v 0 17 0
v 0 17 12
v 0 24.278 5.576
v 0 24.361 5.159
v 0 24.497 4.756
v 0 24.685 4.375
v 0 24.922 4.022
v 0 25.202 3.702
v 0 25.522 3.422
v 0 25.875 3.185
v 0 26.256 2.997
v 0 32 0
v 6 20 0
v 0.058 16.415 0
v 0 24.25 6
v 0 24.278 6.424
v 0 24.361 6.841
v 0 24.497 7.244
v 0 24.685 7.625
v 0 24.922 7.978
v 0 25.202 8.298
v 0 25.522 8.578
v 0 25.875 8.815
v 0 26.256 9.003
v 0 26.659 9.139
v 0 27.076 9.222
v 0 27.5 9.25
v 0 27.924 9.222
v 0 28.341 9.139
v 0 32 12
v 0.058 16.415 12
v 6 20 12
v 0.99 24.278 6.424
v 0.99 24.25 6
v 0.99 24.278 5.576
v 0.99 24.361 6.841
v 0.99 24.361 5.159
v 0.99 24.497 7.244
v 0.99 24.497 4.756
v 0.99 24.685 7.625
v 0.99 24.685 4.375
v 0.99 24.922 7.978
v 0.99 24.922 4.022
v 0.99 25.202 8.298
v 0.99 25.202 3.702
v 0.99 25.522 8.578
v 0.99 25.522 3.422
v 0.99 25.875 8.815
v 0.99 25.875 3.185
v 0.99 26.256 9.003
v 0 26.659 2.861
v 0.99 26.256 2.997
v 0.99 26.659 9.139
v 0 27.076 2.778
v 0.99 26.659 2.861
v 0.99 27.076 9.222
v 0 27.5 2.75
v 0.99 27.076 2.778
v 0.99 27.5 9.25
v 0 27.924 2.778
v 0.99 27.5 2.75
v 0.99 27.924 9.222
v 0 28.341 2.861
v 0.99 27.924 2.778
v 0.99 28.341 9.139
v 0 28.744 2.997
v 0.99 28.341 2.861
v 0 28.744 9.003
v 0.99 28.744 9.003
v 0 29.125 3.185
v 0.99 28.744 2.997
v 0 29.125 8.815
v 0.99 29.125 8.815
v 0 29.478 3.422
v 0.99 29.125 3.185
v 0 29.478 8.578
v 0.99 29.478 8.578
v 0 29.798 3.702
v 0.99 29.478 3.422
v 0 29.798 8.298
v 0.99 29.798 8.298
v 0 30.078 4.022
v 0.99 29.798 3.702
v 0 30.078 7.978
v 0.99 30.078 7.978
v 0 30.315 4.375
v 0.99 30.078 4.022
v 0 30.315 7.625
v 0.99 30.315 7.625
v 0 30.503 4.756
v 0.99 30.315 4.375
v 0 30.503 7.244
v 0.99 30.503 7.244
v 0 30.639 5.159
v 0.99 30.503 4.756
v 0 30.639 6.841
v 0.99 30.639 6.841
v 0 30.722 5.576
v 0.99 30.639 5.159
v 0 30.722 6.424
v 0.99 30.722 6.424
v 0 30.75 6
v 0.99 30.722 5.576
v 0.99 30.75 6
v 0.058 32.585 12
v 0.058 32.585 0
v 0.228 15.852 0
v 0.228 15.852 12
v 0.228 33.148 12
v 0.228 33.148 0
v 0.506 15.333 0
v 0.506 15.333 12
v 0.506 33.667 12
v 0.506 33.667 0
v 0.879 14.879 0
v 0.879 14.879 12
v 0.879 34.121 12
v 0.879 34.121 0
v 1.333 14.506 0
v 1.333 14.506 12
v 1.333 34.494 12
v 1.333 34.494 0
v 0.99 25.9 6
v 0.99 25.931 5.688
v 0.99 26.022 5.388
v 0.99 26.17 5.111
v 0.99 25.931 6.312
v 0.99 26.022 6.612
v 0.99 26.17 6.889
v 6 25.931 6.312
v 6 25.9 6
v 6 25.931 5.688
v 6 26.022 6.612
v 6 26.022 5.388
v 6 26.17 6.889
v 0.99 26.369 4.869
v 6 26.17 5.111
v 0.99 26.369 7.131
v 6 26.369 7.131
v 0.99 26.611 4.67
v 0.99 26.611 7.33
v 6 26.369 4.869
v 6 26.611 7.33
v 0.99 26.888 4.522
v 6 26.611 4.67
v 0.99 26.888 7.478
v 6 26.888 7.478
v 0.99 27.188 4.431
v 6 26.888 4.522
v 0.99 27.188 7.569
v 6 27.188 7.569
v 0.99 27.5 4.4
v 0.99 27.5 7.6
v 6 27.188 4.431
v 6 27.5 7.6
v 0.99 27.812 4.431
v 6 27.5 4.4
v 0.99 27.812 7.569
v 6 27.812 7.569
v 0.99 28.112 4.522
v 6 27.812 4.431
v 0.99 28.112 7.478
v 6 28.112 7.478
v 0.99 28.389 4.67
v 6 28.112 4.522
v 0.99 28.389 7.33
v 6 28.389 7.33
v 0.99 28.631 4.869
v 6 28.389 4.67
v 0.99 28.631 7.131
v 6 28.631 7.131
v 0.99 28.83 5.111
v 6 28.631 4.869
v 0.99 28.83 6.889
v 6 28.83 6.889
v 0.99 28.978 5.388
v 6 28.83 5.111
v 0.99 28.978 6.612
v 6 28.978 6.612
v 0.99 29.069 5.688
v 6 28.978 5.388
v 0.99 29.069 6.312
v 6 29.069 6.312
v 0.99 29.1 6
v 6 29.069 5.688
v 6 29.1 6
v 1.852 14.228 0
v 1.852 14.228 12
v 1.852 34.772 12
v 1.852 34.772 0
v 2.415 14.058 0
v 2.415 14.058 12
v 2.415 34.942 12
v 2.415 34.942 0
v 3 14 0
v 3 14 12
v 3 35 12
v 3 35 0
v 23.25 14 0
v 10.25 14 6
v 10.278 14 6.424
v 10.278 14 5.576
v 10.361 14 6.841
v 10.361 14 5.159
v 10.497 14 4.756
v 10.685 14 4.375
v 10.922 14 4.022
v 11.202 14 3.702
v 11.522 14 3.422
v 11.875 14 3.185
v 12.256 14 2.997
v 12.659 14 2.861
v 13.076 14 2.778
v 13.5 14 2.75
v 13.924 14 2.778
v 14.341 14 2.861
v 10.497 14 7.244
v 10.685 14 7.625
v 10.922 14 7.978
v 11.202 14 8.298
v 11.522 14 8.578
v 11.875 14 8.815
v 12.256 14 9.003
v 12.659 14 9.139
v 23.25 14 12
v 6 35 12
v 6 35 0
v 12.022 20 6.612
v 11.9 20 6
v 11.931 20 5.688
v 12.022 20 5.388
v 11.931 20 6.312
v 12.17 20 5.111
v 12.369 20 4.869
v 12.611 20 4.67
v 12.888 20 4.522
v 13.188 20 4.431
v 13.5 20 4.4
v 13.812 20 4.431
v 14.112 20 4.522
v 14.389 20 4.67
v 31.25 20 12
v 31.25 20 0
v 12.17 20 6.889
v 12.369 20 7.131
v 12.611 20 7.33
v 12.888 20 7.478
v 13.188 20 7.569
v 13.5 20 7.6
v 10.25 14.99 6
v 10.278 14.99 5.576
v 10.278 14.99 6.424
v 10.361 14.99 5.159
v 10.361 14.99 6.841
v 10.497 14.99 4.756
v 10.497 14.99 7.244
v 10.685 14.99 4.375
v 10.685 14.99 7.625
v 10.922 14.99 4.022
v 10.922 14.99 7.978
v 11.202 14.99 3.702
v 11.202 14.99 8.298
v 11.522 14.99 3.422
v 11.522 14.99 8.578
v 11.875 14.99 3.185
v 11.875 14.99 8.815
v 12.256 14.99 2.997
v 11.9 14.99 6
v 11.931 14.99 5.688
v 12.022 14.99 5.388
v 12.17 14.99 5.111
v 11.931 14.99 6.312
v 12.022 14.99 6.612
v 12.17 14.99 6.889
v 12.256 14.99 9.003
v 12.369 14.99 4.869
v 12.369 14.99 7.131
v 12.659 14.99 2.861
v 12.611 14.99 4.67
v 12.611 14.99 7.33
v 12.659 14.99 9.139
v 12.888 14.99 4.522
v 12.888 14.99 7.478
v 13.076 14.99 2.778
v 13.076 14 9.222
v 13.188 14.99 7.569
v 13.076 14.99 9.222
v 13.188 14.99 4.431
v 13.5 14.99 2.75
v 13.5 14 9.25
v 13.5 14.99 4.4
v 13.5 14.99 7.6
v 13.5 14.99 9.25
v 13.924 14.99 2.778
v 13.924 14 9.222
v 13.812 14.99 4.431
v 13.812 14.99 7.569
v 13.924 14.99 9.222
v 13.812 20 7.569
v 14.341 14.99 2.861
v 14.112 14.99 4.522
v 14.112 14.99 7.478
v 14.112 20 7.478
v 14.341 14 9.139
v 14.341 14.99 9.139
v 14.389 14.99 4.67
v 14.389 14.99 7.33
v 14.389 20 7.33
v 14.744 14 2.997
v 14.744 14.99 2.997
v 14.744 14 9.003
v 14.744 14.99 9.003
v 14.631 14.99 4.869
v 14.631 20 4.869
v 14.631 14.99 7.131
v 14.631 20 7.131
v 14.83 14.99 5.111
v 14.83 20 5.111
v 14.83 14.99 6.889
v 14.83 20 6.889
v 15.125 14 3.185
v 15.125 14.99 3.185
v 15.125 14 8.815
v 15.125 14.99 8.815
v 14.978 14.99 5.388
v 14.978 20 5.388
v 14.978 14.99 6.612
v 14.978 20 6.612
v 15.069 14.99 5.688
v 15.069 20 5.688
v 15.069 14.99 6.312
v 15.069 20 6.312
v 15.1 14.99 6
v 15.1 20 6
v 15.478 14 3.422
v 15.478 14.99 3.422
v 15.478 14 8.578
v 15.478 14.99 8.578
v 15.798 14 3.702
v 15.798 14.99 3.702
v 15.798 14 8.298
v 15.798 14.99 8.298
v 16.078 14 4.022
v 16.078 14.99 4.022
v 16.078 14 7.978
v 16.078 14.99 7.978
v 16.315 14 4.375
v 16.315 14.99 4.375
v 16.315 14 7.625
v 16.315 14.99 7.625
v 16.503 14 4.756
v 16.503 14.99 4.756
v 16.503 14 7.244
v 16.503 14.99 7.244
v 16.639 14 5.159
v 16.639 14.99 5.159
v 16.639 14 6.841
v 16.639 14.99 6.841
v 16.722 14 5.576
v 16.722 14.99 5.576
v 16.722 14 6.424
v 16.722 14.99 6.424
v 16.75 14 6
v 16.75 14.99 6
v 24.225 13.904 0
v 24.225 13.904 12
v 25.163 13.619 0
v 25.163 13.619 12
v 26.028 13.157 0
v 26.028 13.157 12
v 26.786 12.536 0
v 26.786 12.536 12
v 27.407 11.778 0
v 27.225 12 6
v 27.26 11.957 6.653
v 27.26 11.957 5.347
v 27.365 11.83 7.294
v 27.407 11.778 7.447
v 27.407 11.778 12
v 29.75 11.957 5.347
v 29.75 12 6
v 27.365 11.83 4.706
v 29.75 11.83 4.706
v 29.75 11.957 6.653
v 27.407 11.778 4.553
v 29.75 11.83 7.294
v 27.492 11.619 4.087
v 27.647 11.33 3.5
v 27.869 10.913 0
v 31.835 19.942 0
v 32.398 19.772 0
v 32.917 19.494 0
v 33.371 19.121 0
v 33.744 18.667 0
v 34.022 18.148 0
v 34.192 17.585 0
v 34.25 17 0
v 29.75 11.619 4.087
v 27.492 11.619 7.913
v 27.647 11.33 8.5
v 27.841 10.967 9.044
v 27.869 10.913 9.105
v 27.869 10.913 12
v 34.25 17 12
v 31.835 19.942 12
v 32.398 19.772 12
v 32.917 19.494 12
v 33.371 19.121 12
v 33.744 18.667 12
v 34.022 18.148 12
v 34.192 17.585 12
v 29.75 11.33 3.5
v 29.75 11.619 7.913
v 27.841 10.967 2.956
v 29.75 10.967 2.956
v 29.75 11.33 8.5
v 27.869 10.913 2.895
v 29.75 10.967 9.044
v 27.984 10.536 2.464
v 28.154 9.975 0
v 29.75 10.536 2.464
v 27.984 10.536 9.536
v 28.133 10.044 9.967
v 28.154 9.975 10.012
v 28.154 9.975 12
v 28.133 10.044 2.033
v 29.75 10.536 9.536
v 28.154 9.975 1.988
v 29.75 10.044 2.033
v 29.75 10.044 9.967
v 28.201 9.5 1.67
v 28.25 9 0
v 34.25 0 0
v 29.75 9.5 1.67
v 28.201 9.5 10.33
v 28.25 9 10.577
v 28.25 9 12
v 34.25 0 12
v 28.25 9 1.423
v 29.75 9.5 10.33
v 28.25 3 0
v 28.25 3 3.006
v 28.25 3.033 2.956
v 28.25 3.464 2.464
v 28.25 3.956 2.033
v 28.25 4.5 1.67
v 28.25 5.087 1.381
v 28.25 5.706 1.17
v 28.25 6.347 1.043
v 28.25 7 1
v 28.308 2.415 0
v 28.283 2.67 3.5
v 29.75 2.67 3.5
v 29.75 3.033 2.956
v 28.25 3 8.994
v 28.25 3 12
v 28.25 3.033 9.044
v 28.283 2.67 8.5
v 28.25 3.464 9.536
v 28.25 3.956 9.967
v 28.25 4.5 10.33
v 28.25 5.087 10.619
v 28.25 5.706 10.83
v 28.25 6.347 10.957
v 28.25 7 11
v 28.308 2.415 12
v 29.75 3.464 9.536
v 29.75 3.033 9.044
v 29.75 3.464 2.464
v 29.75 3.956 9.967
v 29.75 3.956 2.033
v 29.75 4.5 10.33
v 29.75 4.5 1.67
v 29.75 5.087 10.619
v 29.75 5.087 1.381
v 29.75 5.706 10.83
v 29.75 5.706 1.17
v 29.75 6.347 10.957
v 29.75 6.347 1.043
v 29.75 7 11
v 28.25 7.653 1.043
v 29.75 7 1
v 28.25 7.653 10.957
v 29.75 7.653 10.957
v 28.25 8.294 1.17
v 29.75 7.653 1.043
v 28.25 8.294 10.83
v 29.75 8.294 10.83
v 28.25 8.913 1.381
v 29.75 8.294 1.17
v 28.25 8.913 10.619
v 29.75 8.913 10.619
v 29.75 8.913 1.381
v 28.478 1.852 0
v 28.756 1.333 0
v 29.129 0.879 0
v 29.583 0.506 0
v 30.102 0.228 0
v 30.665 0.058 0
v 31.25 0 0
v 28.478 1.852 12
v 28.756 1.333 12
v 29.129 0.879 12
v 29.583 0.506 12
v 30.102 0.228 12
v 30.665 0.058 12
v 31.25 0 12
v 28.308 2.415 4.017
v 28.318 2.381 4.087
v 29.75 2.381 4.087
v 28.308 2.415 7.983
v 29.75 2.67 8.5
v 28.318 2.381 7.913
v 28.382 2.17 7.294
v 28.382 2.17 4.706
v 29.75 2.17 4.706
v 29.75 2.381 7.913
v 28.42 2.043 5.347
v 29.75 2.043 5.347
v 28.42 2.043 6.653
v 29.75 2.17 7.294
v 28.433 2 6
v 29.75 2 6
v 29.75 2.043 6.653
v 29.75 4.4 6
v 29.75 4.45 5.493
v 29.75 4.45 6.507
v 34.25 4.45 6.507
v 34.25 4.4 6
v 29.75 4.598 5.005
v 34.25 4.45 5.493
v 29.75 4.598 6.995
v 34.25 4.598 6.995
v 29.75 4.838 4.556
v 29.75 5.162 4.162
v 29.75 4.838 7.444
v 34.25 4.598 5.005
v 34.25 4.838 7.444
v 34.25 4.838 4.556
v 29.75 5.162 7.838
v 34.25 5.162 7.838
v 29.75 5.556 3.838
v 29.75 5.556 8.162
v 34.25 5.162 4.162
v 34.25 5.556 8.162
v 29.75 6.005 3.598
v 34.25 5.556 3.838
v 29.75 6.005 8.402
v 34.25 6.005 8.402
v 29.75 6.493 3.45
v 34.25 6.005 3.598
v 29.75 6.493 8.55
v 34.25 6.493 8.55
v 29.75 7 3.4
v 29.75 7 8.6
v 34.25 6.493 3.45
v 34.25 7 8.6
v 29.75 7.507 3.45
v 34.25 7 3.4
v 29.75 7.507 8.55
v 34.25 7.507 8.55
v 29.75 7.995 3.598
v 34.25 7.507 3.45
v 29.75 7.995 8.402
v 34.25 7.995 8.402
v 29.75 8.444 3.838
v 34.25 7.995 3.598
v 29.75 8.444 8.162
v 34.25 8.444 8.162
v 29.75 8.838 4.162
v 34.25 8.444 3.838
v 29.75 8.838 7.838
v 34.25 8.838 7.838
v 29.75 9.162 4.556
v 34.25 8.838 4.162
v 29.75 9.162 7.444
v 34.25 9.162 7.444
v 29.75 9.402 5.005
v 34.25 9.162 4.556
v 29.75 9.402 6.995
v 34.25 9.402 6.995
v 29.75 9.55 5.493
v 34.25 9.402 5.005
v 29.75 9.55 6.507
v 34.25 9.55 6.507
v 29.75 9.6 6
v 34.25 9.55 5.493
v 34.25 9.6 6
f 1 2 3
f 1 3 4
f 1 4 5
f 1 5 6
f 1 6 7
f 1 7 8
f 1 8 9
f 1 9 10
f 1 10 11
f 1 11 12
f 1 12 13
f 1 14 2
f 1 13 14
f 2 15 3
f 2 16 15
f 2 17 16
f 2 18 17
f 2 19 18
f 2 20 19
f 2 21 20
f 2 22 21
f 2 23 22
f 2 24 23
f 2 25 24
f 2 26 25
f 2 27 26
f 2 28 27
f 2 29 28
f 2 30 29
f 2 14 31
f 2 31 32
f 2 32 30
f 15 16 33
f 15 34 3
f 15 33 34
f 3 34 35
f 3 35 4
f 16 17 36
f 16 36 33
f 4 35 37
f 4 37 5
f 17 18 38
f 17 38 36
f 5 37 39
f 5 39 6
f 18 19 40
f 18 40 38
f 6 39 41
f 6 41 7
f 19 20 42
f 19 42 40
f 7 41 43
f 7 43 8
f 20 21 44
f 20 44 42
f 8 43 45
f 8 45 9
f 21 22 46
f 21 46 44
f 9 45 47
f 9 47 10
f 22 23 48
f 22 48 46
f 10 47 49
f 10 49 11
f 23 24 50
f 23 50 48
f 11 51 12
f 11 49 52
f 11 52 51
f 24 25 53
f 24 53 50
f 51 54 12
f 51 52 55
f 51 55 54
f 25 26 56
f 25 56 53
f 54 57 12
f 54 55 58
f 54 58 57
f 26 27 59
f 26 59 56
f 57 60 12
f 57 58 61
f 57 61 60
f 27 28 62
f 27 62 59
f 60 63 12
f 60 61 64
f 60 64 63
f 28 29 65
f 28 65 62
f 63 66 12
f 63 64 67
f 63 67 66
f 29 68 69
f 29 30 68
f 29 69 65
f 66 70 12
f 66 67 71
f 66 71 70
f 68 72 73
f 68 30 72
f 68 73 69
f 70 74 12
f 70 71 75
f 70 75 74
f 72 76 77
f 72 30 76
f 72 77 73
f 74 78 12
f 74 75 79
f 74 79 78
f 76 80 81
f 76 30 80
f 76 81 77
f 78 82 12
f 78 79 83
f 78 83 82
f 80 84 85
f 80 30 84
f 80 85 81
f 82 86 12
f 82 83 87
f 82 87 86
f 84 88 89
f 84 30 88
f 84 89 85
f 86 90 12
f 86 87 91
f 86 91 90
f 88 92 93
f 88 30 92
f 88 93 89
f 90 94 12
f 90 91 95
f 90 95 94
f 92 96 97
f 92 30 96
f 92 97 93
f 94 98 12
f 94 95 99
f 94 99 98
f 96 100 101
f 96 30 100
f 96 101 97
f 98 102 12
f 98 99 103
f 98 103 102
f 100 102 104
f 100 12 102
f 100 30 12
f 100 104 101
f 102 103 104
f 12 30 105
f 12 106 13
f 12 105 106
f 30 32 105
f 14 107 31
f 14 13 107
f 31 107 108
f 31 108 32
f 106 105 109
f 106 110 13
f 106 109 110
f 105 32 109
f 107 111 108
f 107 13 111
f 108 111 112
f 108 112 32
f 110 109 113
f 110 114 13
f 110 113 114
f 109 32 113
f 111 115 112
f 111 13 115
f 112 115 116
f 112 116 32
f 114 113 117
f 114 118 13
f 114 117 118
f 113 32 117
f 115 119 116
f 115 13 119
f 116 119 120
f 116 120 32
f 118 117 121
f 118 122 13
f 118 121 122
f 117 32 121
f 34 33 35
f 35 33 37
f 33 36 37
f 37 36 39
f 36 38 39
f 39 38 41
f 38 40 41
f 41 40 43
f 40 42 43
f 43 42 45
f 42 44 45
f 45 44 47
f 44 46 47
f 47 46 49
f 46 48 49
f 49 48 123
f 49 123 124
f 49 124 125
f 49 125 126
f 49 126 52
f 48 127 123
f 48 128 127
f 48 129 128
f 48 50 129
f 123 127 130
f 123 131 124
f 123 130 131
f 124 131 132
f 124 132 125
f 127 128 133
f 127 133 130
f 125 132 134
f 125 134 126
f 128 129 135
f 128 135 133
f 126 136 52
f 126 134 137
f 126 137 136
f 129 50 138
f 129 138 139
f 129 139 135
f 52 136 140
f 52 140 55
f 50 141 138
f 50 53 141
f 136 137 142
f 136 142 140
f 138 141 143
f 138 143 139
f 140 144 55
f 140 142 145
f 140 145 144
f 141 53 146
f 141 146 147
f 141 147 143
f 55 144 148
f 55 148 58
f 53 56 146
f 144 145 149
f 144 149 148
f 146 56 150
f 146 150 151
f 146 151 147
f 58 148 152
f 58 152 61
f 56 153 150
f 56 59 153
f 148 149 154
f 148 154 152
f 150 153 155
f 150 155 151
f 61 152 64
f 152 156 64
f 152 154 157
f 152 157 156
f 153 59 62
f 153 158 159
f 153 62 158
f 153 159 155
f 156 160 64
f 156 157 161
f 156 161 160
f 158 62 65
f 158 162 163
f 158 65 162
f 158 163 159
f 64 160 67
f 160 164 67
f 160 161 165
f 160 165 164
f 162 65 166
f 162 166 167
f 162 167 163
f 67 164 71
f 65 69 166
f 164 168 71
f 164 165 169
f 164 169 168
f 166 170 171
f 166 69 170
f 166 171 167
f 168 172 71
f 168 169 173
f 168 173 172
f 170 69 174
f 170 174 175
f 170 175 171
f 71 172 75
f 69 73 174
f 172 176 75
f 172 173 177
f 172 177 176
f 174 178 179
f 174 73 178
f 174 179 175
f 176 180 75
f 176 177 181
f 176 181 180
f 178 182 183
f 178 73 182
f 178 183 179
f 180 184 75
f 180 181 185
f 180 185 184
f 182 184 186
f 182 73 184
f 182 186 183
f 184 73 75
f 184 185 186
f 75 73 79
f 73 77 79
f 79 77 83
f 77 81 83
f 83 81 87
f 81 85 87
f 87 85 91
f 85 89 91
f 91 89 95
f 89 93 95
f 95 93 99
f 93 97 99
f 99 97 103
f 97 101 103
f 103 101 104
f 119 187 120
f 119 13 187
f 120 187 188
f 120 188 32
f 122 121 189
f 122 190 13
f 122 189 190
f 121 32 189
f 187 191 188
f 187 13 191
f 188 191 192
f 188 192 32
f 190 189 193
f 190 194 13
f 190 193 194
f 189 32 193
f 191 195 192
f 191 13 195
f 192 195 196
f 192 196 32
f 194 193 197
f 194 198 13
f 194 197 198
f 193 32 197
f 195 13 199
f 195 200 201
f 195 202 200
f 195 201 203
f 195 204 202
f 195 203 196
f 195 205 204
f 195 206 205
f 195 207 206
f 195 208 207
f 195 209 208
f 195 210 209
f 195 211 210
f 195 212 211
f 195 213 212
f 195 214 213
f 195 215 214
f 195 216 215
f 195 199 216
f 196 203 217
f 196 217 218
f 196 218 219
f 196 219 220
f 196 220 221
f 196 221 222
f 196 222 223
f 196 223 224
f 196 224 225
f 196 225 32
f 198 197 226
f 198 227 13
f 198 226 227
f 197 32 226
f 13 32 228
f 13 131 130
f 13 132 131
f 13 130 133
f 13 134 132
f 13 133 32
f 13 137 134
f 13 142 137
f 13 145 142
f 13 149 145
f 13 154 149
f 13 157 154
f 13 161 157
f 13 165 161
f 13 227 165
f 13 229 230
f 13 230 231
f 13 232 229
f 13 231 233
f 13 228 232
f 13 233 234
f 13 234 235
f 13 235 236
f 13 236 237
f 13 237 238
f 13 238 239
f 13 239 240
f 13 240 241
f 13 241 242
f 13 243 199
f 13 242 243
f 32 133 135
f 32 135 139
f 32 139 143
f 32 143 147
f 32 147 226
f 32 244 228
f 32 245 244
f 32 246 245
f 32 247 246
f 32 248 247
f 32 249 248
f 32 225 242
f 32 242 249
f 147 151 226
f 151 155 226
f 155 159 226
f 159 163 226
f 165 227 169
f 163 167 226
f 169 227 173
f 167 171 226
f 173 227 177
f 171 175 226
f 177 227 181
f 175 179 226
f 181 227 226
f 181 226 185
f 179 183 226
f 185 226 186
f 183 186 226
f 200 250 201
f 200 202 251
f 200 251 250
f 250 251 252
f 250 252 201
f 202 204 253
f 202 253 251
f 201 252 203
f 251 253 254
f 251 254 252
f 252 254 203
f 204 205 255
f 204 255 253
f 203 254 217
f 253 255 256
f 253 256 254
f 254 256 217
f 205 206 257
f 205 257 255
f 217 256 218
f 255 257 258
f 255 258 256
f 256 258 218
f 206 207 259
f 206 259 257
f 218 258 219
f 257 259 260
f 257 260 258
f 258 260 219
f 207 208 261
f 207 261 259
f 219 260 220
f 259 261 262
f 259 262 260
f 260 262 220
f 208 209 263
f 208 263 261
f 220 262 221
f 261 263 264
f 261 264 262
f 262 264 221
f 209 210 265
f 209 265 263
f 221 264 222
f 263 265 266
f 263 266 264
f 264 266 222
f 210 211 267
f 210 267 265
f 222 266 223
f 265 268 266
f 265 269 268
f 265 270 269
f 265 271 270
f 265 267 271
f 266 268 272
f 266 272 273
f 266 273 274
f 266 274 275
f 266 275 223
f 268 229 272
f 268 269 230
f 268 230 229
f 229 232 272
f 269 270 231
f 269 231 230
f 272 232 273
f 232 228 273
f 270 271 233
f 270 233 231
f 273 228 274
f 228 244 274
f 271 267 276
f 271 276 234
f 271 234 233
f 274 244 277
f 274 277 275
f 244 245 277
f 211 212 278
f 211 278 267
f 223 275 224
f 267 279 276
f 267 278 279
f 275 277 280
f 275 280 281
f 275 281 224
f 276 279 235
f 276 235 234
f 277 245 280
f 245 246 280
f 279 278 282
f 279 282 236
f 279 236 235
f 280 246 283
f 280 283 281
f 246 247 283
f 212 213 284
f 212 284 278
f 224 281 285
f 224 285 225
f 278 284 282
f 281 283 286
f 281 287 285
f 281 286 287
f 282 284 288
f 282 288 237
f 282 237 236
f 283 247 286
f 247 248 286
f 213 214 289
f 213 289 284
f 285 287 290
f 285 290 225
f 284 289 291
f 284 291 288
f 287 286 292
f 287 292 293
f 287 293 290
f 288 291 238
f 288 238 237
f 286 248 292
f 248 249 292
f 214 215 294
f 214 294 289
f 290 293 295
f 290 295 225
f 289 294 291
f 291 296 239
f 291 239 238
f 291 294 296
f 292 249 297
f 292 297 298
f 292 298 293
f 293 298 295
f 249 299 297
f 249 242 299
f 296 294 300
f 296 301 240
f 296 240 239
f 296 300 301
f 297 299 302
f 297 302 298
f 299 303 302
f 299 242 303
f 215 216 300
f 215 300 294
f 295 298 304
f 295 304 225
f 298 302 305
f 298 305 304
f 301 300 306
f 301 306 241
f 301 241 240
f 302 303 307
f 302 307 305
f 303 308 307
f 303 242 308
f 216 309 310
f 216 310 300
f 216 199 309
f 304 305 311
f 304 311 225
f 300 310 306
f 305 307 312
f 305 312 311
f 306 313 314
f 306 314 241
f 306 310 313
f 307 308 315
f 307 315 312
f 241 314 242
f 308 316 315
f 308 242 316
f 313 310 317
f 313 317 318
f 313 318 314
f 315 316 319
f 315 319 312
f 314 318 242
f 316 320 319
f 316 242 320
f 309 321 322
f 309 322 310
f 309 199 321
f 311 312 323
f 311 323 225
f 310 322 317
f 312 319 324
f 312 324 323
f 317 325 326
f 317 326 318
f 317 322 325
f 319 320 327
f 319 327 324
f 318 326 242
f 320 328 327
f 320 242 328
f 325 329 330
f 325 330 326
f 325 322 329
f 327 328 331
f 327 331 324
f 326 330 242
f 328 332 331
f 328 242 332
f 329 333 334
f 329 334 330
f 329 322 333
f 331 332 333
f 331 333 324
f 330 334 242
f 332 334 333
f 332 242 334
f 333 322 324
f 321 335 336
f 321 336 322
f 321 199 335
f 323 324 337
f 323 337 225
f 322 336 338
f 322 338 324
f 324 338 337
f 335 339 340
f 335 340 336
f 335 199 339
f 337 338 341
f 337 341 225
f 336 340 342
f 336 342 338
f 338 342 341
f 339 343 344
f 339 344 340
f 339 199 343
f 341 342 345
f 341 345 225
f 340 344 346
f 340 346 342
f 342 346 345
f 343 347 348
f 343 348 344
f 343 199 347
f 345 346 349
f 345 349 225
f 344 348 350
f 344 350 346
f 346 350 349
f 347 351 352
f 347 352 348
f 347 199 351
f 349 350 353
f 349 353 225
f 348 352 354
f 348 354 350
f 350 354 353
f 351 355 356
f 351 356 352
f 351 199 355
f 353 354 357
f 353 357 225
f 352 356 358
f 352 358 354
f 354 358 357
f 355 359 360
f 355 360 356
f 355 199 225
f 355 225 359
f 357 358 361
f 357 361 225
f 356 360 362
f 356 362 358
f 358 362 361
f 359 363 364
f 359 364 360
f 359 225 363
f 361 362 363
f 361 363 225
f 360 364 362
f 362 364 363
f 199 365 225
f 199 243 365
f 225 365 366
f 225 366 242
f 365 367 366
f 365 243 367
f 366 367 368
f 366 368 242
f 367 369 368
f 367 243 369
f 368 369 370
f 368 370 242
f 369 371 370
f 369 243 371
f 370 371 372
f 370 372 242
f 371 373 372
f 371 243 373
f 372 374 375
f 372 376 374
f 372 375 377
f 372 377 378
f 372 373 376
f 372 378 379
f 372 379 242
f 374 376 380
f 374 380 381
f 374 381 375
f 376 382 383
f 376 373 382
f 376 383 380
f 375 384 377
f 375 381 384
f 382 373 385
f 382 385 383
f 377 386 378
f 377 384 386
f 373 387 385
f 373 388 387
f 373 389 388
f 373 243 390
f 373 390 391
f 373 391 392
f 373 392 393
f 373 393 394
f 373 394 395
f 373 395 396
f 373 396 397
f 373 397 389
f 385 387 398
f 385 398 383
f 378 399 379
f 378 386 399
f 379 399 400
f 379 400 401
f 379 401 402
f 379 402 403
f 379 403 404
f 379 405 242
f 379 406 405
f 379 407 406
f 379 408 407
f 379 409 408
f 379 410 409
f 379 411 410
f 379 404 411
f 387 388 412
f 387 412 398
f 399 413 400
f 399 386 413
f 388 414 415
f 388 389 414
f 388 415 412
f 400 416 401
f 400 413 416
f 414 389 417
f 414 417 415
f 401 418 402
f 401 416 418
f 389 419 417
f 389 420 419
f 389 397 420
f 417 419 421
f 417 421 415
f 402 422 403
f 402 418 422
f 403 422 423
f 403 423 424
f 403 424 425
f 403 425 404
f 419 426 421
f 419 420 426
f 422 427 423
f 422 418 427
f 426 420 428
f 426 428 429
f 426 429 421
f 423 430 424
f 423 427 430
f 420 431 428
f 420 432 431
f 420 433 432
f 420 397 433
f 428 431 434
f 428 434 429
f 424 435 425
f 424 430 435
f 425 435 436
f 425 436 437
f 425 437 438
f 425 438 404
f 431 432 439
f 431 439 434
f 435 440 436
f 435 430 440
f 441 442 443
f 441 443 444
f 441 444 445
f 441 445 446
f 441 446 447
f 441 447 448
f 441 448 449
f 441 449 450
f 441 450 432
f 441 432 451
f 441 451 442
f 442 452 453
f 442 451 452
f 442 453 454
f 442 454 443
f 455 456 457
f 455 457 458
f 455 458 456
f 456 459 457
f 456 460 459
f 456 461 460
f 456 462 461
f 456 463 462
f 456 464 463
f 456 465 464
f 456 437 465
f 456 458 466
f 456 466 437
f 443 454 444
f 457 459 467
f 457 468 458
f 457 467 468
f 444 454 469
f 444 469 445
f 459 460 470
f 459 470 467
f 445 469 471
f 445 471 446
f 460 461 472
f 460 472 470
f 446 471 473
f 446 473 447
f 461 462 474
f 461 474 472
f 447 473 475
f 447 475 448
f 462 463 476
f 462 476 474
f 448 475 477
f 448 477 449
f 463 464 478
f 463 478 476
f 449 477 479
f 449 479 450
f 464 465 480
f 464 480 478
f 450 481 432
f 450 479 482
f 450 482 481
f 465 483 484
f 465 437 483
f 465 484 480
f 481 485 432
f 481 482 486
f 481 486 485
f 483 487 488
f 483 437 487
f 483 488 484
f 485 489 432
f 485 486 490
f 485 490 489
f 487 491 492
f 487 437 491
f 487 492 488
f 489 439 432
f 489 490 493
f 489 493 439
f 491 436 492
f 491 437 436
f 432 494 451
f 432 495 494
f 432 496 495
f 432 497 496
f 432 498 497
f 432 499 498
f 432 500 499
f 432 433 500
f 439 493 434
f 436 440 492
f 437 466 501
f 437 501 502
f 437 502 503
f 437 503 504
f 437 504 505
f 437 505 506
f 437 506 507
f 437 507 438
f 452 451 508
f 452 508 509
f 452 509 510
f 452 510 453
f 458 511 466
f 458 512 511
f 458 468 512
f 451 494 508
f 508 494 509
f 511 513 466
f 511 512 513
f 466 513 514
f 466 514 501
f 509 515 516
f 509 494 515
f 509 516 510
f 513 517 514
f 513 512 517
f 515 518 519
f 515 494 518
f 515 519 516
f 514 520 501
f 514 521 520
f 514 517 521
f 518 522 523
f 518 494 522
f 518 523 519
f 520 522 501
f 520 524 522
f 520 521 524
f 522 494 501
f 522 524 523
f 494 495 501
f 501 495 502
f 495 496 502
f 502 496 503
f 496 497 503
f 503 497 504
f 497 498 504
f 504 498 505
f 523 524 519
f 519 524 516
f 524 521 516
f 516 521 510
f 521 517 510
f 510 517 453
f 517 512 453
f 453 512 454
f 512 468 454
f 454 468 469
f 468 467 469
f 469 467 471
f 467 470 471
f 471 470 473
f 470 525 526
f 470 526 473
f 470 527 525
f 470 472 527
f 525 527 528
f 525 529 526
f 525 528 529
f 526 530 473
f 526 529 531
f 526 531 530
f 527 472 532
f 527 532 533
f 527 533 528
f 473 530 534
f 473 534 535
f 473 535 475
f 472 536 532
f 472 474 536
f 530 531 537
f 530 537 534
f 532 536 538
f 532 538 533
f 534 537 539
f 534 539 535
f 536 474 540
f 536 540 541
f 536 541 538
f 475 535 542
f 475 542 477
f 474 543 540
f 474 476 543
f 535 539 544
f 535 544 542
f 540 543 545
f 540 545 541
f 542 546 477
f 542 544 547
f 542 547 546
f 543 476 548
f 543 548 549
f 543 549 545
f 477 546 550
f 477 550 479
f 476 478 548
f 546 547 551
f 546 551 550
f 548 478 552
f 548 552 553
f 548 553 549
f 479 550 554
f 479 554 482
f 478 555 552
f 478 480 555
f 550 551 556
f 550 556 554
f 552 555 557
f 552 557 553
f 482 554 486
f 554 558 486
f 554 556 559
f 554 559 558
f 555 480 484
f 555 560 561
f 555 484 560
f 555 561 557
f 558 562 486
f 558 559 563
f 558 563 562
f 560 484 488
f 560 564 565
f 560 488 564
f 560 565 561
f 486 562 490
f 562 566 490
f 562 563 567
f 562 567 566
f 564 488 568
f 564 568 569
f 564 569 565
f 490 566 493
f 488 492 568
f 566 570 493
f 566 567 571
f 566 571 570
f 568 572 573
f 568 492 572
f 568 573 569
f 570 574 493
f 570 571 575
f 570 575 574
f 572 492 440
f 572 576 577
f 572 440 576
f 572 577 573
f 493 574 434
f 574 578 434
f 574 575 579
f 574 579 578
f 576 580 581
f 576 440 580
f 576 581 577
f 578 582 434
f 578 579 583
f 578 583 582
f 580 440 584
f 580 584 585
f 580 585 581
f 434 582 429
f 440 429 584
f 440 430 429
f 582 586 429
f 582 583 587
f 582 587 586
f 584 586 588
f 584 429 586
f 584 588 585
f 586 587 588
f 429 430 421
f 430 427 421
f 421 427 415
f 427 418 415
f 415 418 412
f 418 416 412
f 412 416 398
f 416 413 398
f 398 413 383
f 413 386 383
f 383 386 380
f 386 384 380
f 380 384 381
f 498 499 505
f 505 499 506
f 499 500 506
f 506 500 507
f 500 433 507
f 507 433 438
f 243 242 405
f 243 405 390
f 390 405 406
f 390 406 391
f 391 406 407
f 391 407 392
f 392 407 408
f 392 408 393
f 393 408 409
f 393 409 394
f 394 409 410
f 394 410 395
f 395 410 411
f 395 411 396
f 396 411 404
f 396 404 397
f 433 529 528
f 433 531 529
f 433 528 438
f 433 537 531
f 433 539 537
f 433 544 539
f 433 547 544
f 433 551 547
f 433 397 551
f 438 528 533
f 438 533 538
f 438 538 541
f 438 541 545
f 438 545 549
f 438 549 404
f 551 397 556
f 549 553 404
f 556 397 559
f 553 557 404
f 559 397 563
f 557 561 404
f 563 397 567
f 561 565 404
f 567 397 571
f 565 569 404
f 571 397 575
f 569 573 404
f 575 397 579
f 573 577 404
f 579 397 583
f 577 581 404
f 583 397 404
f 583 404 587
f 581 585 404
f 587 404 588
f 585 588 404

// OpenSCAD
// file: lib/utils.scad
// Quarter circle at center; quadrant 0=+x+y, 1=-x+y, 2=-x-y, 3=+x-y
module quarter_round(center, quadrant, corner_radius) {
    translate(center)
        intersection() {
            circle(r = corner_radius, $fn = 32);
            if (quadrant == 0) square([corner_radius, corner_radius]);
            if (quadrant == 1) translate([-corner_radius, 0]) square([corner_radius, corner_radius]);
            if (quadrant == 2) translate([-corner_radius, -corner_radius]) square([corner_radius, corner_radius]);
            if (quadrant == 3) translate([0, -corner_radius]) square([corner_radius, corner_radius]);
        }
}
// file: config.scad
// Shared dimensions for the open-flyball-thruster.
//
// Anything used by more than one file (a printed part, a lib, or the
// thruster.scad assembly) lives here. Values only one part cares about stay in
// that part's file.
//
// Usage:
//   scad/<part>.scad      include <config.scad>
//   scad/lib/<lib>.scad   include <../config.scad>
//   thruster.scad         include <scad/config.scad>

// ---------------------------------------------------------------------------
// Base plate
plate_size = [77.5, 80];
plate_thickness = 8;

// ---------------------------------------------------------------------------
// Steel baffles (80×20×2 on the base)
baffle_width = 20;              // nominal width; positions the extrusions
baffle_profile_width = 19.9;    // width of the modelled baffle outline and the base recess
baffle_length = 80;
baffle_thickness = 2;
baffle_partial_arc_radius = 20;
baffle_slot_width = 6.5;
baffle_slot_length = 15;
baffle_edge_offset = 2;

// ---------------------------------------------------------------------------
// 1515 aluminium extrusions
extrusion_size = 15;
extrusion_length = 115;                 // main profile pieces (×2)
extrusion_groove_depth = 1;             // how far the extrusions sit into the backstop
hammer_top_extrusion_length = 65;
hammer_side_extrusion_length = 135;     // long side of the angled cut
hammer_side_extrusion_short_length = 125; // short side of the angled cut (pedal connector)
hammer_side_cut_rise = hammer_side_extrusion_length - hammer_side_extrusion_short_length;
hammer_side_cut_angle = atan(hammer_side_cut_rise / extrusion_size);

extrusion_center_offset = plate_size[0] / 2 - baffle_width / 2;
distance_between_outside_faces_of_extrusions = 2 * extrusion_center_offset + extrusion_size;

// ---------------------------------------------------------------------------
// Fasteners
m3_hole_diameter = 3.2;
m3_hole_radius = m3_hole_diameter / 2;
m3_groove_diameter = 6.5;   // counterbore for M3 button / socket heads

// ---------------------------------------------------------------------------
// Linear rod, bushings, collars, springs
linear_shaft_hole_radius = 5;       // bore in base and backstop for the T-bushing body
linear_shaft_groove_depth = 2;      // T-bushing flange recess in the backstop

t_bushing_id = 8;
t_bushing_flange_od = 16;
t_bushing_flange_thickness = 3;
t_bushing_body_od = 10;
t_bushing_body_height = 5;

stop_collar_id = 8;
stop_collar_od = 14;
stop_collar_thickness = 7;

shaft_coupling_id = 8;
shaft_coupling_od = 14;
shaft_coupling_length = 22;

m4_tap_radius = 1.65;

main_spring_od = 12;
main_spring_wire_d = 1.2;
main_spring_length = 70;

hammer_spring_od = 8;
hammer_spring_wire_d = 0.9;
hammer_spring_length = 10;

// ---------------------------------------------------------------------------
// Backstop
backstop_thickness = 8;

// ---------------------------------------------------------------------------
// Plunger
plunger_thickness = 10;

// ---------------------------------------------------------------------------
// Hammer holders (pivot blocks on the main extrusions)
hammer_holder_wall = 6;
hammer_holder_depth = 12;
hammer_holder_inner_corner_radius = 5;
hammer_holder_m3_groove_depth = 1;
hardware_holder_height = 14;
hammer_extrusion_play = 1;          // side clearance for the hammer between the main extrusions
hammer_holder_extra_width = extrusion_center_offset - extrusion_size - hammer_holder_wall - hammer_extrusion_play / 2;

// ---------------------------------------------------------------------------
// Hammer joint + hammer head
hammer_joint_wall = 3;
hammer_joint_bottom_offset = 6;
hammer_joint_right_offset = 8;
hammer_top_extrusion_offset = 3;
hammer_head_height = 6;
hammer_head_height_offset = 4.5;    // how deep the hammer head sits in the joint's top pocket
hammer_joint_width = extrusion_size + 2 * hammer_joint_wall;
// Z of the floor of the hammer head pocket (where the hammer head sits)
hammer_joint_head_seat_z = hammer_joint_bottom_offset + extrusion_size + hammer_top_extrusion_offset + hammer_joint_wall;

// ---------------------------------------------------------------------------
// Spring holder (holds the hammer spring down)
spring_holder_height = 34;
spring_holder_thickness = 20;
spring_holder_screw_length = 30;
spring_holder_screw_extra_for_nut = 4;  // how far the M3 screw reaches past the part into the square nut
// Depth of the M3 head counterbore for a given spring holder height
function spring_holder_m3_groove_depth(height = spring_holder_height) =
    max(0, height - spring_holder_screw_length + spring_holder_screw_extra_for_nut);

// ---------------------------------------------------------------------------
// Pedal connector (slides over the bottom of the hammer side extrusion)
pedal_connector_height = 20;
pedal_connector_wall = 2;
pedal_connector_extrusion_tolerance = 0.1;
pedal_connector_outer = extrusion_size + 2 * pedal_connector_wall;
pedal_connector_cavity_size = extrusion_size + 2 * pedal_connector_extrusion_tolerance;
pedal_connector_cavity_offset = (pedal_connector_outer - pedal_connector_cavity_size) / 2;
pedal_connector_total_height = pedal_connector_height + hammer_side_cut_rise;
pedal_connector_bolt_cage_bottom_z = (hammer_side_cut_rise / extrusion_size) * pedal_connector_outer;
pedal_connector_bolt_cage_z = pedal_connector_total_height - pedal_connector_bolt_cage_bottom_z;
// main file
include <config.scad>
use <lib/utils.scad>

corner_radius = hammer_holder_wall / 2;
inner_corner_radius = hammer_holder_inner_corner_radius;

m5_hole_radius = 5.2 / 2;
m5_groove_diameter = 10;
m5_groove_depth = 1.5;

// M5 hinge: true = groove for hex nut side, false = groove for screw head
m5_nut_side = false;
m5_nut_flat = 8;
m5_nut_depth = 4;

module hammer_holder(nut_side = undef) {
    _m5_nut = (nut_side != undef) ? nut_side : m5_nut_side;
    extra_width_required = hammer_holder_extra_width;
    total_width = hammer_holder_wall + extrusion_size + extra_width_required + hammer_holder_wall;
    total_height = extrusion_size + hammer_holder_wall + hardware_holder_height;

    difference() {
        linear_extrude(height = hammer_holder_depth) {
            union() {
                // Main profile
                difference() {
                    difference() {
                        square([total_width, total_height]);
                        translate([total_width - extrusion_size - extra_width_required - hammer_holder_wall, total_height - extrusion_size])
                            square([extrusion_size + extra_width_required + hammer_holder_wall, extrusion_size]);
                        square([hammer_holder_wall + extrusion_size + extra_width_required, hardware_holder_height]);
                    }
                    // Cut off sharp corners
                    for (cut = [
                        [0, total_height - corner_radius],
                        [0, hardware_holder_height],
                        [total_width - corner_radius, hardware_holder_height + hammer_holder_wall - corner_radius],
                        [total_width - hammer_holder_wall, 0]
                    ]) {
                        translate(cut)
                            square([corner_radius, corner_radius]);
                    }
                }
                // Add quarter circles for rounded corners
                for (c = [
                    [corner_radius, total_height - corner_radius, 1],
                    [corner_radius, hardware_holder_height + corner_radius, 2],
                    [total_width - corner_radius, hardware_holder_height + hammer_holder_wall - corner_radius, 0],
                    [total_width - hammer_holder_wall + corner_radius, corner_radius, 2]
                ]) {
                    quarter_round([c[0], c[1]], c[2], corner_radius);
                }
                // Inner rounded corner
                translate([hammer_holder_wall + extrusion_size + extra_width_required - inner_corner_radius, hardware_holder_height - inner_corner_radius])
                    difference() {
                        square([inner_corner_radius, inner_corner_radius]);
                        circle(r = inner_corner_radius, $fn = 32);
                    }
            }
        }
        // M3 screws for fastening to extrusion [position, rotation]
        for (hole = [
            [[0 - 0.01, hardware_holder_height + hammer_holder_wall + extrusion_size / 2, hammer_holder_depth / 2], [90, 0, 90]],
            [[hammer_holder_wall + extrusion_size/2, hardware_holder_height - 0.01, hammer_holder_depth / 2], [-90, 0, 0]]
        ]) {
            translate(hole[0])
                rotate(hole[1]) {
                    cylinder(h = hammer_holder_depth + 1, r = m3_hole_radius, center = true, $fn = 32);
                    cylinder(h = hammer_holder_m3_groove_depth, d = m3_groove_diameter, $fn = 48);
                }
        }
        // M5 through hole + groove (screw head or nut hex)
        translate([hammer_holder_wall + extrusion_size + extra_width_required - inner_corner_radius, hardware_holder_height / 2, hammer_holder_depth / 2])
            rotate([90, 0, 90]) {
                cylinder(h = hammer_holder_wall + inner_corner_radius + 0.01, r = m5_hole_radius, $fn = 32);
                if (_m5_nut) {
                    cylinder(h = m5_nut_depth + inner_corner_radius, r = m5_nut_flat / sqrt(3), $fn = 6);
                } else {
                    cylinder(h = m5_groove_depth + inner_corner_radius, d = m5_groove_diameter, $fn = 48);
                }
            }
    }
}

hammer_holder();
